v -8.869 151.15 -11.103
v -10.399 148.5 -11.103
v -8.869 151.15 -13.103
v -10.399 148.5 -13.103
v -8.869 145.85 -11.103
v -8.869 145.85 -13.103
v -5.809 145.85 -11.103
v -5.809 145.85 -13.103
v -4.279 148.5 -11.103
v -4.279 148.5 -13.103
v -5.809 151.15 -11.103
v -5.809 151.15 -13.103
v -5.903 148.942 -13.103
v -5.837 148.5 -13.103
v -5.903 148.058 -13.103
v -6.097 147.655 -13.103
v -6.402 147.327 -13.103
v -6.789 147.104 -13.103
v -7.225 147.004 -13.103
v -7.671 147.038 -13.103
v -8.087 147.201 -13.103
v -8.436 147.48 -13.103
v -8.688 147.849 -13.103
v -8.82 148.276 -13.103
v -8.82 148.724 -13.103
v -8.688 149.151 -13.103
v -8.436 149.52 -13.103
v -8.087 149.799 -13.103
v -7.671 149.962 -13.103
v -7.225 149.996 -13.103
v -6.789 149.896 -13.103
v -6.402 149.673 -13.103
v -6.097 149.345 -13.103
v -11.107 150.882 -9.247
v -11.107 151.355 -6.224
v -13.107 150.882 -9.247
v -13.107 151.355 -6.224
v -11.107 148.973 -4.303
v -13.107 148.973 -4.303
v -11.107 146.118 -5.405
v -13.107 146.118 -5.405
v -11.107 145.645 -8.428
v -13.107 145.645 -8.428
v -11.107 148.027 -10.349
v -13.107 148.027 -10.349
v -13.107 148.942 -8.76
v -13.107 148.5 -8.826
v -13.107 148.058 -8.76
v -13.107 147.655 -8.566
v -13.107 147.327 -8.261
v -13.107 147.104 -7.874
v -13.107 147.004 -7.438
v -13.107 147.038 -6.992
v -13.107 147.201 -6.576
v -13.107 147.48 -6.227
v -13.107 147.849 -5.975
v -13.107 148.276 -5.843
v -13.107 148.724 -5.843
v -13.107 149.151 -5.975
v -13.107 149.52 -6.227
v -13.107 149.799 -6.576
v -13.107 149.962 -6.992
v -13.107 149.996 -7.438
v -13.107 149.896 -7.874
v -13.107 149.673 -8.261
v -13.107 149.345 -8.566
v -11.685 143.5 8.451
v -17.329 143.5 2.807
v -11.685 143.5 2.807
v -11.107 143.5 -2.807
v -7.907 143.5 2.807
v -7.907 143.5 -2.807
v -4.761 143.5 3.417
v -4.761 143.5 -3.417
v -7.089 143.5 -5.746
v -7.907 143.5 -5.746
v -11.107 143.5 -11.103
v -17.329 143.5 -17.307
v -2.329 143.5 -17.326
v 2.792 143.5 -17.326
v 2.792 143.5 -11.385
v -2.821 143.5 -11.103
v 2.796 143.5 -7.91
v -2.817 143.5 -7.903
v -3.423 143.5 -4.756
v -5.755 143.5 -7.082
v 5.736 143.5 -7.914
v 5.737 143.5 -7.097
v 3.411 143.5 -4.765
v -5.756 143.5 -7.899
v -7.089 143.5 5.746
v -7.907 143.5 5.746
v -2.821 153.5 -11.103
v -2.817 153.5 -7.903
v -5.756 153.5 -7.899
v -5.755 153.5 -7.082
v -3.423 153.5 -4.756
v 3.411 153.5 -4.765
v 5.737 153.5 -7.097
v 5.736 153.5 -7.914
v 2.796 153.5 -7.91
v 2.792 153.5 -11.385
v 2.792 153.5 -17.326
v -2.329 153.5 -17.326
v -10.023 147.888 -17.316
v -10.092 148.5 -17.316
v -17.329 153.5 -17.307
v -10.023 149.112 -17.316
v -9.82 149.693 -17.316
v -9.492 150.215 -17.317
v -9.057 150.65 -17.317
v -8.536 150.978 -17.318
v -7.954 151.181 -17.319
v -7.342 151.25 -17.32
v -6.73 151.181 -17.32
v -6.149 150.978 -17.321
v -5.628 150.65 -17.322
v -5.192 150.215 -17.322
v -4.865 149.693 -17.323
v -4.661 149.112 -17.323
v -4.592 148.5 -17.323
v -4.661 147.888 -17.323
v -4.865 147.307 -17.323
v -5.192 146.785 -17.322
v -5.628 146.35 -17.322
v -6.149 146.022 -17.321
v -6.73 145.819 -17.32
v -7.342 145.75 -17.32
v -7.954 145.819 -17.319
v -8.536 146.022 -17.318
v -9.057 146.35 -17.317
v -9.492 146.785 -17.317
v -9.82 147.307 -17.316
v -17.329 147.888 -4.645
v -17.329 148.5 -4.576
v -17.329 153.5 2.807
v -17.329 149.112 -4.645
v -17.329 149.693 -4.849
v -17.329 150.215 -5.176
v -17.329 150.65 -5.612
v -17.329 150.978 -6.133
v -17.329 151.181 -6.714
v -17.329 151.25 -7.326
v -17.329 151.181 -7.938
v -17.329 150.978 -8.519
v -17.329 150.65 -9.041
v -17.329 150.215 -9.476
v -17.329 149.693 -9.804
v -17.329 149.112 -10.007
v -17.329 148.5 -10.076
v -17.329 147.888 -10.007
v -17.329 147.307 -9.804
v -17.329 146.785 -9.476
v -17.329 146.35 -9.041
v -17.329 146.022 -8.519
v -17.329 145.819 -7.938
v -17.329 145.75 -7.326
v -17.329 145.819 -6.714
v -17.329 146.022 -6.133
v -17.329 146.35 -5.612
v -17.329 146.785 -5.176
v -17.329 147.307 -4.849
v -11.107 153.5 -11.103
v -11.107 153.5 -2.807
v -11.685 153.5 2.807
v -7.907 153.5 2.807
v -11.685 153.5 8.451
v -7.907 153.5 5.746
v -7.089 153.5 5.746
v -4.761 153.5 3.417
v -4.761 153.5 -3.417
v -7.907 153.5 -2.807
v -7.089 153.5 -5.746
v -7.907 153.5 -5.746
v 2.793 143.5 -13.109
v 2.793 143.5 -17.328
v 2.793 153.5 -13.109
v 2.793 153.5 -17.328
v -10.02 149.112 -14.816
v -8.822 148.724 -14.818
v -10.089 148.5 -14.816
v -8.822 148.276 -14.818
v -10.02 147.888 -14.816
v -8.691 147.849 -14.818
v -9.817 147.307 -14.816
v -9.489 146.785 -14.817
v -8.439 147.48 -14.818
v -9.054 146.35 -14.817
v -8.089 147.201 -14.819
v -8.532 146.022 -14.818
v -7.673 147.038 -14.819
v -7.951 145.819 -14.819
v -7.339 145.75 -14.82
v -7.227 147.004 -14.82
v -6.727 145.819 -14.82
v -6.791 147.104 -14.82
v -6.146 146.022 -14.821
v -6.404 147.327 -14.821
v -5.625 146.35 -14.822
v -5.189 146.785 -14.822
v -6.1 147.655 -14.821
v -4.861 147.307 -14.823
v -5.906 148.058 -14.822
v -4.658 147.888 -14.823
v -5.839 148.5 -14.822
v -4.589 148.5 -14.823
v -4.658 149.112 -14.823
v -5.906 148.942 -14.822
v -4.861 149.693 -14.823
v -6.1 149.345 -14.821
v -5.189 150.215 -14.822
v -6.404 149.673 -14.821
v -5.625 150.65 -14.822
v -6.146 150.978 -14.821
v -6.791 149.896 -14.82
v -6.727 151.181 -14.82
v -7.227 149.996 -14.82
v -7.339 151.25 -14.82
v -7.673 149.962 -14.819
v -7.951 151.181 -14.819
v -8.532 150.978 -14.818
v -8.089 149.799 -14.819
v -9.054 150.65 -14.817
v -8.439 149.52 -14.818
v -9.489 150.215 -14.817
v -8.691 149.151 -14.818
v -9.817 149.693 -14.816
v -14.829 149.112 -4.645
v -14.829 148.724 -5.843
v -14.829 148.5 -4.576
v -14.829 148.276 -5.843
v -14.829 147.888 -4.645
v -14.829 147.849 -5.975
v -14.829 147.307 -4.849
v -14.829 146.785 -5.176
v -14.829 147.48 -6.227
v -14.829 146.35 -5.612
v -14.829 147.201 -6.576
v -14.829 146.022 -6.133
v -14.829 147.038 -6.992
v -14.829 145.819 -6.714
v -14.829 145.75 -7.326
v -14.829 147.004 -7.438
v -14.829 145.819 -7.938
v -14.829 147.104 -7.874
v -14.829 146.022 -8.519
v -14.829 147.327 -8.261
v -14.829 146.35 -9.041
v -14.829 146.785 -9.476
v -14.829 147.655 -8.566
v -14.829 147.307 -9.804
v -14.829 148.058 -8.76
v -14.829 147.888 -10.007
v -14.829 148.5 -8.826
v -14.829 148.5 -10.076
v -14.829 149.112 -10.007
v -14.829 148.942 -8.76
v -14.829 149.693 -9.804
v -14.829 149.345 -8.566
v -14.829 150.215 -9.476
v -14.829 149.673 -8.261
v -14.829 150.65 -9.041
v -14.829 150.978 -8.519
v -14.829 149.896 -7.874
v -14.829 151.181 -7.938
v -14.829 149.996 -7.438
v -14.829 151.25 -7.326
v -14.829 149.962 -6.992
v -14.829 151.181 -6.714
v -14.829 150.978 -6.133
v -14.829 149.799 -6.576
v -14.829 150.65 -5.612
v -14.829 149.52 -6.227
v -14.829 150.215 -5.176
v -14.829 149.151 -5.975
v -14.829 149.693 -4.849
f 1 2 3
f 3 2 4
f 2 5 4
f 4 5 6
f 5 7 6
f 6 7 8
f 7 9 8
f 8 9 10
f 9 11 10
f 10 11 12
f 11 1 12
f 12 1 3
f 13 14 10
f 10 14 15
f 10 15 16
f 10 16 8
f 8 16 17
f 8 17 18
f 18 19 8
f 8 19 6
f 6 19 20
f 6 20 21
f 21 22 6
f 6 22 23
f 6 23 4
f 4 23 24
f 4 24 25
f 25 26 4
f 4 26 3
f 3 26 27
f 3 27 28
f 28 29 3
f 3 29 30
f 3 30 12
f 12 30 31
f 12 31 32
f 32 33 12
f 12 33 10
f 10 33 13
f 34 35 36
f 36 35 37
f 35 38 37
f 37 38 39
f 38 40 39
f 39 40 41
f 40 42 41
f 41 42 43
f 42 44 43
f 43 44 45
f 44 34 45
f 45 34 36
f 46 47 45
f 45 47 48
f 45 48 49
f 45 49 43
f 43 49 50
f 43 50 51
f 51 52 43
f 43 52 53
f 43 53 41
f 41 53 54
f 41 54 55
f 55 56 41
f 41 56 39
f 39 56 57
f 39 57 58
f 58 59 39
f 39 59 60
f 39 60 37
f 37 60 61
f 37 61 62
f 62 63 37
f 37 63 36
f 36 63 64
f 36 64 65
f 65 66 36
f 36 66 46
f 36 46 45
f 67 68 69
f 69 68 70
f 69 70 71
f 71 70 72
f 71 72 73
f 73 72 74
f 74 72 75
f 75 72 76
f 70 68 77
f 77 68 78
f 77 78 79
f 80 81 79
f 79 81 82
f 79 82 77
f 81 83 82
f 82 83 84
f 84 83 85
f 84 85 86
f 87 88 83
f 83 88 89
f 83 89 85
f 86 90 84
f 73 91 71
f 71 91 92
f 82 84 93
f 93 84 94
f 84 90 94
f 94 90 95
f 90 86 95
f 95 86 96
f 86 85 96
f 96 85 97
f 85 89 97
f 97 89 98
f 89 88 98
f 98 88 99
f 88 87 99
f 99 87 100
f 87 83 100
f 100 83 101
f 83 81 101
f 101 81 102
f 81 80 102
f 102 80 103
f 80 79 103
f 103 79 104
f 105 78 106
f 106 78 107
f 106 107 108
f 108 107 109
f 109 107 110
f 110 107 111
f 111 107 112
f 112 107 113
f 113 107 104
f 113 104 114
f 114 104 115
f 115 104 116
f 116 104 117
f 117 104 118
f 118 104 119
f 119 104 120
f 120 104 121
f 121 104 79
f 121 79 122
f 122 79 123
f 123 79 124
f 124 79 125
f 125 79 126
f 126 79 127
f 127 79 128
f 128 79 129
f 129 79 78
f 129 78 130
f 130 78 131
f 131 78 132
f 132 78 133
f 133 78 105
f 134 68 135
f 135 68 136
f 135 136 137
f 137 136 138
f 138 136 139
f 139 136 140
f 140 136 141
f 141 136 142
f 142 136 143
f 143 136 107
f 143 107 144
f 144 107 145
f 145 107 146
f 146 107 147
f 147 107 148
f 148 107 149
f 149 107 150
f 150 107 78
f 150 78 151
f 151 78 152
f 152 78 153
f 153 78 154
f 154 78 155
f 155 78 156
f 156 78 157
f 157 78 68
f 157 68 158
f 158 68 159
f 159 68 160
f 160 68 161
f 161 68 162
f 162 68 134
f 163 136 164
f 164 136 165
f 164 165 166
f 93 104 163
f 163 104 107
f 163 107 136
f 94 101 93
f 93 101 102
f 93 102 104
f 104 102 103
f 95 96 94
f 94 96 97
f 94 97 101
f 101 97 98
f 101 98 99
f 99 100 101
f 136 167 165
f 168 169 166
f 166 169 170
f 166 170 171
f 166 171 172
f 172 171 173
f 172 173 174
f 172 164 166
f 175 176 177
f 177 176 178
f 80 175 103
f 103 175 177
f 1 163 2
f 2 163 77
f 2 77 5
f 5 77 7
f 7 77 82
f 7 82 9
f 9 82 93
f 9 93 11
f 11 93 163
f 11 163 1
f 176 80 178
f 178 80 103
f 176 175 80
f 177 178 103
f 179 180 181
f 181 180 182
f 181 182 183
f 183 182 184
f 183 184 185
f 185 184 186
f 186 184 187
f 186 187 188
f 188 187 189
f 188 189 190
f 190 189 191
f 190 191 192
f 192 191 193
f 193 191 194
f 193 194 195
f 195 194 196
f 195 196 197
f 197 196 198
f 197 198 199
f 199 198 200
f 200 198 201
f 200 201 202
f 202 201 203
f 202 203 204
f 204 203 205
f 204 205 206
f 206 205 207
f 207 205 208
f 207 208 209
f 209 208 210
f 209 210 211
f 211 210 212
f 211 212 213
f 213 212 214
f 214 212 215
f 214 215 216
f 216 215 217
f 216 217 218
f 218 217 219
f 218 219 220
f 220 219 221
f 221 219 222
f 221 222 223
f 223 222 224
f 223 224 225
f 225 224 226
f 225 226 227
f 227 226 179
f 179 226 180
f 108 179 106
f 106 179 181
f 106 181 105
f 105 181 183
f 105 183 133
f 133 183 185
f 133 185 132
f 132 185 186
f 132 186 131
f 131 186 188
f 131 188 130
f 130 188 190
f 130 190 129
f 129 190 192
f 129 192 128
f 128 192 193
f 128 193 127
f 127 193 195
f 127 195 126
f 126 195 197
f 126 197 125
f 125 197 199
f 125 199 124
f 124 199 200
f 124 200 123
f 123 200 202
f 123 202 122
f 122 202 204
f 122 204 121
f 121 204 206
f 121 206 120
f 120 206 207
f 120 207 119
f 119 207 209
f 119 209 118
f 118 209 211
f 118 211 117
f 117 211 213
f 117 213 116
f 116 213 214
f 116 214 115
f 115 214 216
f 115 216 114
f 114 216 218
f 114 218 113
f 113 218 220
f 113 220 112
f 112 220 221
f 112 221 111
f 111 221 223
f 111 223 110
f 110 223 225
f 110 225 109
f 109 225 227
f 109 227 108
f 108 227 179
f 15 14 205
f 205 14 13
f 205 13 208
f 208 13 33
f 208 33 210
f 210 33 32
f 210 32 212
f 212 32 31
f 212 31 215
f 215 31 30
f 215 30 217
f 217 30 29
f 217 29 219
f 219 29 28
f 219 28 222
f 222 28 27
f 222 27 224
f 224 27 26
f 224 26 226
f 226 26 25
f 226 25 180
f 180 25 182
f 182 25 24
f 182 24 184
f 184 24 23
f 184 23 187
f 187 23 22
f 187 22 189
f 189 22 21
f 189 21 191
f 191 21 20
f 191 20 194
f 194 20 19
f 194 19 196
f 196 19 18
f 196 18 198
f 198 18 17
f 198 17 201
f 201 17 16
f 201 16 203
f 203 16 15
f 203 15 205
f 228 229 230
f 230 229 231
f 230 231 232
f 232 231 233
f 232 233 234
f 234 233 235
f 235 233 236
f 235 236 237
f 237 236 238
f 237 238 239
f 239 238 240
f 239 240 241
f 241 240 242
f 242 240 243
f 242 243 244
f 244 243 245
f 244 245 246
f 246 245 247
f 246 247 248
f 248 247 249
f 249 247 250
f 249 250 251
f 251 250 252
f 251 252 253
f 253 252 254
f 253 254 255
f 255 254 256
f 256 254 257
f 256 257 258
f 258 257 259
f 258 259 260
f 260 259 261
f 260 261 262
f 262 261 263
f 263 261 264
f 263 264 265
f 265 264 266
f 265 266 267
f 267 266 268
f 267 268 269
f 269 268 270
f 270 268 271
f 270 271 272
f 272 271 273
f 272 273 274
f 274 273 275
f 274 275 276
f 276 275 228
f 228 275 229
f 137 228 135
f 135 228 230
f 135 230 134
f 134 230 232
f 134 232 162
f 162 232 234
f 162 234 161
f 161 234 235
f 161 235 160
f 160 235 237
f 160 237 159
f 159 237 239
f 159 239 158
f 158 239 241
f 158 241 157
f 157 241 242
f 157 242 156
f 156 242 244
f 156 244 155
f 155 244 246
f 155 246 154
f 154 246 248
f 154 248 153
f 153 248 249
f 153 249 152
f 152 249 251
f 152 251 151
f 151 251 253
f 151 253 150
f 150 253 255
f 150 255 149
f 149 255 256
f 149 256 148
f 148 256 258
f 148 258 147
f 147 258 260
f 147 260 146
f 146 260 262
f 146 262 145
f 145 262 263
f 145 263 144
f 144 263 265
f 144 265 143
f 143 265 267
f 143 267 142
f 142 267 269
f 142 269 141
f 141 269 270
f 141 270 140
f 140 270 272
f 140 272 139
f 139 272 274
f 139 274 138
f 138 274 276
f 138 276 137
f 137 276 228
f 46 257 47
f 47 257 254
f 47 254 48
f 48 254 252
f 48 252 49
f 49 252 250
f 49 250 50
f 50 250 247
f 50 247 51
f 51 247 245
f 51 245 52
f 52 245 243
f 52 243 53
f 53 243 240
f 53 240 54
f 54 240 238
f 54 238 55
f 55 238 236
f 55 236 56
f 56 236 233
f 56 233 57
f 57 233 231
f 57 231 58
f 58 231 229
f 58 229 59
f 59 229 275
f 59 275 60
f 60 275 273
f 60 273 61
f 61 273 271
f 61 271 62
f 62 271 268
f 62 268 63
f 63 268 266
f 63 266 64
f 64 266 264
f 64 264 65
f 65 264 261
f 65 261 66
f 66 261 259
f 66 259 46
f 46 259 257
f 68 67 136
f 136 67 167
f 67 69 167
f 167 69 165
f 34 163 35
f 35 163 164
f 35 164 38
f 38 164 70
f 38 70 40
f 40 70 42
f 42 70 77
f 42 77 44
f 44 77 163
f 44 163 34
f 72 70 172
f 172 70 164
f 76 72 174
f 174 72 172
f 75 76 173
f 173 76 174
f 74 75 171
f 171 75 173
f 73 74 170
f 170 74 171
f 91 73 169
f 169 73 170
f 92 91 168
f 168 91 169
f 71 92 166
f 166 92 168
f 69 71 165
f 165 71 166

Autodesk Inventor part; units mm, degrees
ref_plane "Work Plane1" through (0, 133.5, 0) normal (0, 1, 0) x (1, 0, 0)
sketch "Sketch2" plane through (0, 133.5, 0) normal (0, 1, 0) x (1, 0, 0)
  line L0 (-4.7607, 0) -> (-4.7607, 3.4172)
  line L1 (-4.7607, 3.4172) -> (-7.0894, 5.7459)
  line L2 (-7.0894, 5.7459) -> (-7.9066, 5.7459)
  line L3 (-7.9066, 5.7459) -> (-7.9066, 2.8066)
  line L4 (0, 0) -> (-13.0213, 0) construction
  line L5 (-7.4066, 2.3066) -> (-7.4066, 5.2459)
  line L6 (-7.4066, 5.2459) -> (-7.2965, 5.2459)
  line L7 (-7.2965, 5.2459) -> (-5.2607, 3.2101)
  line L8 (-5.2607, 3.2101) -> (-5.2607, 0.2101)
  line L9 (-3.7133, 3.0016) -> (-3.0065, 3.7094) projected
  line L10 (0, 0) -> (0, 8.149) construction
  line L11 (-11.6066, 2.3066) -> (-17.3293, 2.3066)
  line L12 (-17.3293, 2.3066) -> (-17.3293, 17.3066)
  line L13 (-4.5607, 3.5) -> (-4.5607, -3.5) projected
  line L14 (-7.0066, 5.9459) -> (-4.5607, 3.5) projected
  line L15 (-8.5066, 5.9459) -> (-7.0066, 5.9459) projected
  line L16 (-8.5066, 3.0066) -> (-8.5066, 5.9459) projected
  line L17 (-10.6066, 2.8066) -> (-10.6066, 10.5927)
  line L18 (-11.6066, 2.3066) -> (-11.6066, 0)
  line L19 (-7.9066, 2.8066) -> (-10.6066, 2.8066)
  line L20 (-10.0066, 3.0066) -> (-8.5066, 3.0066) projected
  line L21 (-7.4066, 2.3066) -> (-11.1066, 2.3066)
  line L22 (-11.1066, 0) -> (-11.1066, 2.3066)
  line L23 (-5.2607, 0.2101) -> (-5.2607, 0)
  line L24 (-10.0066, 8.5066) -> (-10.0066, 3.0066) projected
  line L25 (-10.6066, 2.8066) -> (-11.1066, 2.8066) construction
  line L26 (0, 0) -> (-18.7935, 18.7689) construction
  line L27 (-11.6066, 0) -> (-11.6066, 2.3066)
  line L28 (-11.6066, 2.8066) -> (-11.6066, 2.3066)
  line L29 (-11.6066, 2.8066) -> (-10.6066, 2.8066)
  line L30 (-5.2607, 0) -> (-5.2607, 3.2101)
  line L31 (-7.2965, 5.2459) -> (-7.4066, 5.2459)
  line L32 (-7.4066, 2.3066) -> (-7.4066, 5.2459)
  line L33 (-7.4066, 2.3066) -> (-11.1066, 2.3066)
  line L34 (-11.1066, 0) -> (-11.1066, 2.3066)
  line L35 (-12.1161, 0) -> (-4.7607, 0)
  line L36 (-4.7607, 0) -> (-4.7607, -3.4172)
  line L37 (-4.7607, -3.4172) -> (-7.0894, -5.7459)
  line L38 (-7.0894, -5.7459) -> (-7.9066, -5.7459)
  line L39 (-7.9066, -5.7459) -> (-7.9066, -2.8066)
  line L40 (-7.4066, -2.3066) -> (-7.4066, -5.2459)
  line L41 (-7.4066, -5.2459) -> (-7.2965, -5.2459)
  line L42 (-7.2965, -5.2459) -> (-5.2607, -3.2101)
  line L43 (-5.2607, -3.2101) -> (-5.2607, -0.2101)
  line L44 (-7.0066, -5.9459) -> (-4.5607, -3.5)
  line L45 (-8.5066, -5.9459) -> (-7.0066, -5.9459)
  line L46 (-8.5066, -3.0066) -> (-8.5066, -5.9459)
  line L47 (-11.6066, -2.3066) -> (-11.6066, 0)
  line L48 (-7.9066, -2.8066) -> (-10.6066, -2.8066)
  line L49 (-10.0066, -3.0066) -> (-8.5066, -3.0066)
  line L50 (-7.4066, -2.3066) -> (-11.1066, -2.3066)
  line L51 (-11.1066, 0) -> (-11.1066, -2.3066)
  line L52 (-5.2607, -0.2101) -> (-5.2607, 0)
  line L53 (-10.6066, -2.8066) -> (-11.1066, -2.8066) construction
  line L54 (-11.6066, 0) -> (-11.6066, -2.3066)
  line L55 (-11.6066, -2.8066) -> (-11.6066, -2.3066)
  line L56 (-11.6066, -2.8066) -> (-10.6066, -2.8066)
  line L57 (-5.2607, 0) -> (-5.2607, -3.2101)
  line L58 (-7.2965, -5.2459) -> (-7.4066, -5.2459)
  line L59 (-7.4066, -2.3066) -> (-7.4066, -5.2459)
  line L60 (-7.4066, -2.3066) -> (-11.1066, -2.3066)
  line L61 (-11.1066, 0) -> (-11.1066, -2.3066)
  line L62 (-0.0062, 4.7607) -> (-3.4234, 4.7562)
  line L63 (-3.4234, 4.7562) -> (-5.7552, 7.0819)
  line L64 (-5.7552, 7.0819) -> (-5.7563, 7.899)
  line L65 (-5.7563, 7.899) -> (-2.8169, 7.9029)
  line L66 (-2.3163, 7.4035) -> (-5.2556, 7.3997)
  line L67 (-5.2556, 7.3997) -> (-5.2555, 7.2896)
  line L68 (-5.2555, 7.2896) -> (-3.2169, 5.2564)
  line L69 (-3.2169, 5.2564) -> (-0.217, 5.2604)
  line L70 (-3.0065, 3.7094) -> (-3.7133, 3.0016)
  line L71 (-2.3218, 11.6035) -> (-2.3293, 17.3262)
  line L72 (-2.3293, 17.3262) -> (-17.3293, 17.3066)
  line L73 (-5.9551, 6.9988) -> (-3.506, 4.5561)
  line L74 (-5.9571, 8.4988) -> (-5.9551, 6.9988)
  line L75 (-3.0177, 8.5026) -> (-5.9571, 8.4988)
  line L76 (-2.8205, 10.6029) -> (-10.6066, 10.5927)
  line L77 (-2.3218, 11.6035) -> (-0.0152, 11.6065)
  line L78 (-2.8169, 7.9029) -> (-2.8205, 10.6029)
  line L79 (-3.0197, 10.0026) -> (-3.0177, 8.5026)
  line L80 (-2.3163, 7.4035) -> (-2.3211, 11.1035)
  line L81 (-0.0146, 11.1066) -> (-2.3211, 11.1035)
  line L82 (-0.217, 5.2604) -> (-0.0069, 5.2607)
  line L83 (-8.5197, 9.9954) -> (-3.0197, 10.0026)
  line L84 (-2.8205, 10.6029) -> (-2.8211, 11.1029) construction
  line L85 (-0.0152, 11.6065) -> (-2.3218, 11.6035)
  line L86 (-2.8218, 11.6029) -> (-2.3218, 11.6035)
  line L87 (-2.8218, 11.6029) -> (-2.8205, 10.6029)
  line L88 (-0.0069, 5.2607) -> (-3.2169, 5.2564)
  line L89 (-5.2555, 7.2896) -> (-5.2556, 7.3997)
  line L90 (-2.3163, 7.4035) -> (-5.2556, 7.3997)
  line L91 (-2.3163, 7.4035) -> (-2.3211, 11.1035)
  line L92 (-0.0146, 11.1066) -> (-2.3211, 11.1035)
  line L93 (-0.0159, 12.1161) -> (-0.0062, 4.7607)
  line L94 (0.2031, 5.2609) -> (-0.0069, 5.2607)
  line L95 (5.7366, 7.0969) -> (5.7355, 7.9141)
  line L96 (5.2362, 7.4134) -> (5.2363, 7.3034)
  line L97 (5.7355, 7.9141) -> (2.7962, 7.9102)
  line L98 (2.2968, 7.4096) -> (5.2362, 7.4134)
  line L99 (5.2363, 7.3034) -> (3.2031, 5.2649)
  line L100 (3.4109, 4.7651) -> (5.7366, 7.0969)
  line L101 (-0.0062, 4.7607) -> (3.4109, 4.7651)
  line L102 (2.9934, 10.0105) -> (2.9954, 8.5105)
  line L103 (2.7913, 11.6102) -> (2.7926, 10.6102)
  line L104 (2.7913, 11.6102) -> (2.2913, 11.6096)
  line L105 (2.7962, 7.9102) -> (2.7926, 10.6102)
  line L106 (2.2968, 7.4096) -> (5.2362, 7.4134)
  line L107 (2.2913, 11.6096) -> (-0.0152, 11.6065)
  line L108 (-0.0146, 11.1066) -> (2.292, 11.1096)
  line L109 (-0.0146, 11.1066) -> (2.292, 11.1096)
  line L110 (3.2031, 5.2649) -> (0.2031, 5.2609)
  line L111 (0.2031, 5.2609) -> (-0.0069, 5.2607)
  line L112 (-0.0069, 5.2607) -> (3.2031, 5.2649)
  line L113 (-0.0152, 11.6065) -> (2.2913, 11.6096)
  line L114 (5.2363, 7.3034) -> (5.2362, 7.4134)
  line L115 (5.9367, 7.0144) -> (3.494, 4.5652)
  line L116 (2.2968, 7.4096) -> (2.292, 11.1096)
  line L117 (2.2968, 7.4096) -> (2.292, 11.1096)
  line L118 (2.7926, 10.6102) -> (2.792, 11.1102) construction
  line L119 (-0.217, 5.2604) -> (-0.0069, 5.2607)
  line L120 (-2.8218, 11.6029) -> (-2.8286, 16.8256)
  line L121 (-2.8286, 16.8256) -> (-16.8293, 16.8072)
  line L122 (-16.8293, 16.8072) -> (-16.8293, 2.8066)
  line L123 (-16.8293, 2.8066) -> (-11.6066, 2.8066)
  point P0 (-9.2566, 2.3066)
  point P1 (-9.2566, 2.8066)
  point P2 (-9.2566, -2.3066)
  point P3 (-9.2566, -2.8066)
  point P4 (-0.0171, 13.0213)
  point P5 (-2.3187, 9.2535)
  point P6 (-2.8187, 9.2529)
  point P7 (-0.0214, 8.1489)
  point P8 (2.7944, 9.2602)
  point P9 (2.2944, 9.2596)
  point P10 (-5.2607, -0.2101)
  dimension "d73" = 3
  dimension "d74" = 0.2
  dimension "d75" = 0.5
  dimension "d76" = 0.2
  dimension "d77" = 0.2
  dimension "d78" = 0.6
  dimension "d79" = 0.2
  dimension "d80" = 0.5
  dimension "d81" = 0.5
  dimension "d82" = 15
  dimension "d83" = 0.6
  dimension "d84" = 0.5
  dimension "d86" = 0.5
extrude "Extrusion2" add sketch "Sketch2" along normal blind 30 contours L35 L23 L8 L7 L6 L5 L21 L22 L18 L28 L29 L19 L3 L2 L1 L0 | L36 L37 L38 L39 L48 L56 L55 L47 L35 L51 L50 L40 L41 L42 L43 L52 | L11 L12 L72 L71 L86 L120 L121 L122 L123 L28 | L87 L86 L77 L93 L81 L80 L66 L67 L68 L69 L82 L62 L63 L64 L65 L78 | L107 L104 L103 L105 L97 L95 L100 L101 L93 L94 L110 L99 L96 L98 L116 L108
sketch "Sketch8" plane through (0, 163.5, 0) normal (0, 1, 0) x (1, 0, 0)
  line L0 (2.7962, 7.9102) -> (2.7913, 11.6102) projected
  line L1 (-11.6066, 2.3066) -> (-11.6066, -2.8066) projected
  line L2 (-17.3293, 17.3066) -> (-17.3293, 2.3066) projected
  line L3 (-11.6066, -2.8066) -> (-17.3293, -2.8066)
  line L4 (-17.3293, -2.8066) -> (-17.3293, 2.3066)
  line L5 (-17.3293, 2.3066) -> (-11.6066, 2.3066)
  line L6 (-11.6066, 2.3066) -> (-11.6066, -2.8066)
  line L7 (-2.3293, 17.3262) -> (2.7916, 17.3262)
  line L8 (2.7916, 17.3262) -> (2.7916, 11.3851)
  line L9 (2.7916, 11.3851) -> (-2.3293, 11.3851)
  line L10 (-2.3293, 11.3851) -> (-2.3293, 17.3262)
  point P0 (0, 0)
extrude "Extrusion5" add sketch "Sketch8" against normal blind 30
sketch "Sketch10" plane through (0, 163.5, 0) normal (0, 1, 0) x (1, 0, 0)
  point P0 (0, 0)
sketch "Sketch11" plane through (0, 163.5, 0) normal (0, 1, 0) x (1, 0, 0)
  line L0 (-2.3211, 11.1035) -> (2.292, 11.1096) projected
  line L1 (-17.118, 17.0457) -> (-2.3422, 17.0457)
  line L2 (-2.3422, 17.0457) -> (-2.3422, 11.1035)
  line L3 (-2.3422, 11.1035) -> (-17.118, 11.1035)
  line L4 (-17.118, 11.1035) -> (-17.118, 17.0457)
  line L5 (-11.1066, 2.3066) -> (-7.4066, 2.3066) projected
  line L6 (-17.118, 17.0457) -> (-11.1066, 17.0457)
  line L7 (-11.1066, 17.0457) -> (-11.1066, 2.3066)
  line L8 (-11.1066, 2.3066) -> (-17.118, 2.3066)
  line L9 (-17.118, 2.3066) -> (-17.118, 17.0457)
  line L10 (-7.9066, -2.8066) -> (-17.3293, -2.8066) projected
  line L11 (-11.6847, -2.8066) -> (-11.6847, -8.4511)
  line L12 (-11.6847, -2.8066) -> (-6.0401, -2.8066) construction
  line L13 (-11.6847, -8.4511) -> (-17.3293, -2.8066)
  line L14 (2.7962, 7.9102) -> (2.7916, 11.3851) projected
  line L15 (2.7918, 11.2643) -> (8.8539, 11.2643)
  line L16 (2.7916, 17.3262) -> (-2.3293, 17.3262) projected
  line L17 (2.7916, 17.3262) -> (8.8539, 11.2643)
  line L18 (2.7947, 9.0187) -> (2.7916, 17.3262)
  point P0 (0, 0)
  point P1 (-11.1066, 11.1035)
  point P2 (2.7939, 11.2643)
  point P3 (2.7913, 11.6102)
  dimension "d147" = 45
  dimension "d149" = 44.999
extrude "Extrusion6" add sketch "Sketch11" against normal up to surface (30 mm away) contours L1 L7 L3 L4 | L1 L2 L3 L7 | L3 L7 L8 L9
extrude "Extrusion7" add sketch "Sketch11" against normal blind 30 contours L11 L13 L10 | L18 L17 L15
extrude "Extrusion8" add sketch "Sketch2" along normal up to surface (30 mm away) contours L35 L22 L21 L5 L6 L7 L8 L23 | L52 L43 L42 L41 L40 L50 L51 L35 | L93 L82 L69 L68 L67 L66 L80 L81 | L108 L116 L98 L96 L99 L110 L94 L93
sketch "Sketch6" plane through (-11.6066, 133.5, -2.3066) normal (-1, 0, 0) x (0, 0, 1)
  line L0 (-15, 30) -> (0, 30) projected
  line L1 (0, 30) -> (5.1131, 30) projected
  line L2 (0, 30) -> (5.1131, 30)
  line L3 (2.5566, 30) -> (2.5566, 0)
  line L4 (0, 0) -> (5.1131, 0) projected
  circle A0 centre (2.5566, 15) radius 2.5
  dimension "d121" = 5
sketch "Sketch7" plane through (-2.3218, 133.5, -11.6035) normal (-0.0013, 0, -1) x (-1, 0, 0.0013)
  line L0 (-5.1131, 0) -> (-5.1131, 30) projected
  line L1 (0, 30) -> (15, 30) projected
  line L2 (-5.1131, 30) -> (0, 30)
  line L3 (-2.5566, 30) -> (-2.5566, 0)
  line L4 (0, 0) -> (-4.6131, 0) projected
  circle A0 centre (-2.5566, 15) radius 2.5
  dimension "d122" = 5
ref_plane "Work Plane2" through (0, 148.5, 0) normal (0, 1, 0) x (1, 0, 0)
sketch "Sketch13" plane through (0, 148.5, 0) normal (0, 1, 0) x (1, 0, 0)
  line L0 (14.8441, 67.8647) -> (-12.7331, 95.4419) construction
  line L1 (-12.7331, 95.4419) -> (-32.8856, 75.2893) construction
  line L2 (-32.8856, 75.2893) -> (-5.3085, 47.7122) construction
  line L3 (-5.3085, 47.7122) -> (14.8441, 67.8647) construction
  line L4 (-2.3293, 17.3262) -> (-17.3293, 17.3066) projected
  line L5 (0, 0) -> (-17.3293, 17.3066) construction
  line L6 (-17.3293, 17.3066) -> (-17.3293, 17.3066) construction
  line L7 (-39.3305, 39.3078) -> (-18.1173, 60.521) construction
  line L8 (-17.3293, 17.3066) -> (-17.3293, -2.8066) projected
  line L9 (-17.3293, 17.3066) -> (-42.078, 42.0553) construction
  line L10 (-42.078, 42.0553) -> (-20.8648, 63.2685) construction
  line L11 (20.1474, 71.7538) -> (-3.8943, 47.7122)
  line L12 (-49.1491, 77.4106) -> (-6.7227, 34.9842) construction
  line L13 (-6.7227, 34.9842) -> (-35.0069, 6.7) construction
  line L14 (-35.0069, 6.7) -> (-77.4334, 49.1264) construction
  line L15 (-77.4334, 49.1264) -> (-49.1491, 77.4106) construction
  line L16 (-49.1491, 77.4106) -> (-35.0069, 6.7) construction
  line L17 (-6.7227, 34.9842) -> (-77.4334, 49.1264) construction
  line L18 (-84.5025, 56.1955) -> (-27.9339, -0.3731) construction
  line L19 (-27.9339, -0.3731) -> (-35.005, -7.4441) construction
  line L20 (-35.005, -7.4441) -> (-91.5735, 49.1244) construction
  line L21 (-91.5735, 49.1244) -> (-84.5025, 56.1955) construction
  line L22 (-84.5025, 56.1955) -> (-35.005, -7.4441) construction
  line L23 (-27.9339, -0.3731) -> (-91.5735, 49.1244) construction
  line L24 (-56.2182, 84.4797) -> (0.3504, 27.9112) construction
  line L25 (0.3504, 27.9112) -> (7.4214, 34.9823) construction
  line L26 (7.4214, 34.9823) -> (-49.1471, 91.5508) construction
  line L27 (34.4866, -31.2721) -> (31.3132, -31.2721) construction
  line L28 (-30.5205, 27.2872) -> (-27.9594, 27.2872) construction
  line L29 (-29.24, 26.4576) -> (-29.24, 28.1733) construction
  line L30 (-32.8856, 75.2893) -> (-35.005, 77.4087) construction
  line L31 (-3.8943, 47.7122) -> (25.244, 47.7122) construction
  line L32 (-3.0114, 46.8293) -> (-3.7185, 46.1222) construction
  line L33 (-3.8943, 47.7122) -> (-33.9077, 77.7257) construction
  line L34 (-3.8943, 47.7122) -> (38.5512, 47.7122) construction
  line L35 (-2.3293, 17.3262) -> (2.7916, 17.3262) projected
  line L36 (2.7916, 17.3262) -> (14.6413, 29.1766)
  line L37 (2.7916, 17.3262) -> (8.8539, 11.2643) projected
  line L38 (8.8539, 11.2643) -> (26.7661, 29.1766)
  line L39 (8.8539, 11.2643) -> (34.1856, 11.2643) construction
  line L40 (26.7661, 29.1766) -> (14.6413, 29.1766) construction
  line L41 (26.7661, 29.1766) -> (9.2392, 46.7035)
  line L42 (26.7661, 29.1766) -> (66.5529, 29.1766) construction
  line L43 (9.2392, 46.7035) -> (34.2895, 71.7538)
  line L44 (9.2392, 46.7035) -> (44.6657, 46.7035) construction
  line L45 (10.4159, 62.0223) -> (17.487, 54.9513) construction
  line L46 (10.4159, 62.0223) -> (20.4159, 62.0223) construction
  line L47 (8.8539, 11.2643) -> (2.7916, 17.3262)
  line L48 (-27.1184, 82.4708) -> (-4.1184, 82.4708) construction
  line L49 (15.4451, 17.8556) -> (9.3827, 23.9177) construction
  line L50 (20.1474, 71.7538) -> (3.8839, 88.0172)
  line L51 (20.1474, 71.7538) -> (43.1474, 71.7538) construction
  line L52 (34.2895, 71.7538) -> (10.955, 95.0883)
  line L53 (34.2895, 71.7538) -> (67.2895, 71.7538) construction
  line L54 (10.955, 95.0883) -> (3.8839, 88.0172) construction
  line L55 (-20.8648, 63.2685) -> (3.8839, 88.0172) construction
  line L56 (-12.3795, 104.2807) -> (-36.4212, 80.2391)
  line L57 (-37.4298, 93.3725) -> (-12.3795, 118.4228)
  line L58 (-12.3795, 104.2807) -> (3.8839, 88.0172)
  line L59 (-12.3795, 118.4228) -> (10.955, 95.0883)
  line L60 (-37.4298, 93.3725) -> (-43.4922, 87.3101)
  line L61 (-37.4298, 93.3725) -> (-28.8563, 93.3725) construction
  line L62 (-43.4922, 87.3101) -> (-36.4212, 80.2391)
  line L63 (-7.3926, 51.2105) -> (-8.0997, 50.5034) construction
  line L64 (9.4143, 82.4868) -> (16.4854, 89.5579) construction
  line L65 (-27.8481, 88.8121) -> (-34.9192, 95.8832) construction
  line L66 (-3.8943, 47.7122) -> (14.6413, 29.1766)
  point P0 (-29.3501, 73.168)
  point P1 (-59.7537, 24.3757)
  point P2 (-0.0052, 84.1282)
  dimension "d147" = 45
  dimension "d203" = 45
  dimension "d204" = 4
  dimension "d127" = 28.5
  dimension "d129" = 30
  dimension "d131" = 35
  dimension "d132" = 17
  dimension "d134" = 60
  dimension "d136" = 40
  dimension "d137" = 80
  dimension "d138" = 10
  dimension "d139" = 135
  dimension "d140" = 1
  dimension "d144" = 1
  dimension "d145" = 135
  dimension "d150" = 45
  dimension "d151" = 45
  dimension "d152" = 135
  dimension "d153" = 45
  dimension "d157" = 45
  dimension "d158" = 10
  dimension "d164" = 23
  dimension "d165" = 135
  dimension "d166" = 135
  dimension "d167" = 90
  dimension "d169" = 90
  dimension "d170" = 135
  dimension "d192" = 1
  dimension "d193" = 10
  dimension "d194" = 10
  dimension "d195" = 34
  dimension "d196" = 90
extrude "Extrusion11" add sketch "Sketch13" along normal mid plane 10
ref_plane "Work Plane4" through (0, 148.5, 0) normal (0, 1, 0) x (1, 0, 0)
sketch "Sketch16" plane through (0, 148.5, 0) normal (0, 1, 0) x (1, 0, 0)
  line L0 (20.1474, 71.7538) -> (-3.8943, 47.7122) projected
  line L1 (-3.8943, 47.7122) -> (20.1474, 71.7538)
  line L2 (20.1474, 71.7538) -> (-12.3795, 104.2807)
  line L3 (-12.3795, 104.2807) -> (-36.4212, 80.2391)
  line L4 (-35.658, 86.6591) -> (-12.3795, 109.9375)
  line L5 (-12.3795, 109.9375) -> (25.8042, 71.7538)
  line L6 (25.8042, 71.7538) -> (-1.0658, 44.8837)
  line L7 (-36.4212, 80.2391) -> (-12.3795, 104.2807)
  line L8 (-15.208, 107.1091) -> (-39.2496, 83.0675)
  line L9 (-39.2496, 83.0675) -> (-36.4212, 80.2391)
  line L10 (-1.0658, 44.8837) -> (-3.8943, 47.7122)
  line L11 (-3.8943, 47.7122) -> (14.6413, 29.1766) projected
  line L12 (-43.4922, 87.3101) -> (-36.4212, 80.2391) projected
  point P0 (0, 0)
  point P1 (12.3692, 58.3188)
  dimension "d180" = 4
  dimension "d181" = 4
  dimension "d182" = 46
  dimension "d183" = 4
extrude "Extrusion12" add sketch "Sketch16" against normal blind 19.25
extrude "Extrusion14" add sketch "Sketch16" along normal blind 14.25
sketch "Sketch18" plane through (0, 129.25, 0) normal (0, -1, 0) x (1, 0, 0)
  line L0 (-3.8943, -47.7122) -> (20.1474, -71.7538) projected
  line L1 (20.1474, -71.7538) -> (-3.8943, -47.7122)
  line L2 (-3.8943, -47.7122) -> (-36.4212, -80.2391)
  line L3 (-36.4212, -80.2391) -> (-12.3795, -104.2807)
  line L4 (-12.3795, -104.2807) -> (20.1474, -71.7538)
  point P0 (0, 0)
extrude "Extrusion15" add sketch "Sketch18" against normal blind 5
ref_plane "Work Plane5" through (-231821.5246, 143.5, 231819.1141) normal (0.7071, 0, 0.7071) x (0, 1, 0)
sketch "Sketch19" plane through (-231821.5246, 143.5, 231819.1141) normal (0.7071, 0, 0.7071) x (0, 1, 0)
  line L0 (20, -327857.6653) -> (10, -327857.6653) projected
  line L1 (17.5, -327857.6653) -> (10, -327865.1653)
  line L2 (10, -327874.4237) -> (10, -327857.6653) projected
  line L3 (17.5, -327857.6653) -> (28.1066, -327857.6653) construction
  line L4 (17.5, -327857.6653) -> (10, -327857.6653)
  line L5 (10, -327865.1653) -> (10, -327857.6653)
  dimension "d197" = 135
  dimension "d198" = 2.5
extrude "Extrusion16" add sketch "Sketch19" along normal mid plane 4
mirror "Mirror2" about plane through (0, 148.5, 0) normal (0, 1, 0) of "Extrusion16"
sketch "Sketch20" plane through (0, 148.5, 0) normal (0, 1, 0) x (1, 0, 0)
  line L0 (0, 0) -> (-56.5685, 56.5685) construction
  line L1 (0, 0) -> (80, 0) construction
  dimension "d201" = 80
  dimension "d202" = 135
sketch "Sketch21" plane through (0, 148.5, 0) normal (0, 1, 0) x (1, 0, 0)
  point P0 (0, 0)
sketch "Sketch22" plane through (0, 148.5, 0) normal (0, 1, 0) x (1, 0, 0)
  line L0 (23.9377, 32.005) -> (23.9377, 61.4019)
  line L1 (34.2895, 71.7538) -> (9.2392, 46.7035) projected
  line L2 (9.2392, 46.7035) -> (26.7661, 29.1766) projected
  line L3 (-1.0658, 44.8837) -> (14.6413, 29.1766) projected
  line L4 (7.6413, 36.1766) -> (7.6413, 22.1762)
  line L5 (14.6413, 29.1766) -> (2.7916, 17.3262) projected
  point P0 (0, 0)
  dimension "d203" = 45
  dimension "d204" = 4
  dimension "d207" = 45
  dimension "d208" = 7
extrude "Extrusion17" add sketch "Sketch22" along normal mid plane 4
sketch "Sketch23" plane through (0, 162.75, 0) normal (0, 1, 0) x (1, 0, 0)
  point P0 (0, 0)
sketch "Sketch25" plane through (0, 162.75, 0) normal (0, 1, 0) x (1, 0, 0)
  point P0 (0, 0)
sketch "Sketch26" plane through (0, 162.75, 0) normal (0, 1, 0) x (1, 0, 0)
  line L0 (-12.3795, 104.2807) -> (20.1474, 71.7538) projected
  line L1 (20.1474, 71.7538) -> (-12.3795, 104.2807)
  line L2 (-12.3795, 104.2807) -> (-36.4212, 80.2391)
  line L3 (-36.4212, 80.2391) -> (-3.8943, 47.7122)
  line L4 (-3.8943, 47.7122) -> (20.1474, 71.7538)
  line L5 (-37.1283, 80.2391) -> (-12.3795, 104.9878)
  line L6 (-12.3795, 104.9878) -> (20.8545, 71.7538)
  line L7 (20.8545, 71.7538) -> (-3.8943, 47.005)
  line L8 (-3.8943, 47.005) -> (-37.1283, 80.2391)
  point P0 (0, 0)
  dimension "d210" = 0.5
extrude "Extrusion18" cut sketch "Sketch26" against normal up to surface (28.5 mm away) contours L0 L4 L3 L2 | L5 L6 L7 L8
sketch "Sketch27" plane through (-17.3293, 133.5, -17.3066) normal (-1, 0, 0) x (0, 0, 1)
  line L0 (-0.0197, 20) -> (-0.0197, 10) projected
  line L1 (-0.0197, 15) -> (9.9803, 15) construction
  circle A0 centre (9.9803, 15) radius 1.5
  point P0 (17.3066, -133.5)
  dimension "d213" = 10
  dimension "d214" = 3
hole "Hole3" at (-17.3293, 148.5, -7.3262) direction (1, 0, 0) diameter 3 depth 8 tip angle 118 counterbore diameter 5.5 counterbore depth 2.5
sketch "Sketch28" plane through (-17.3293, 133.5, -17.3066) normal (-0.0013, 0, -1) x (-1, 0, 0.0013)
  ellipse E0 centre (0.0131, 15) end of major axis (0.0131, 12.25) minor radius 0.0036 projected
  line L0 (0.0131, 15) -> (-9.9869, 15) construction
  line L1 (0.0264, 30) -> (0.0264, 0) projected
  line L2 (0.0131, 15) -> (0.0264, 30) construction
  circle A0 centre (-9.9869, 15) radius 1.25
  point P0 (-17.3066, -133.5)
  dimension "d222" = 10
  dimension "d223" = 2.5
hole "Hole4" at (-7.3424, 148.5, -17.3197) direction (0.0013, 0, 1) diameter 3 depth 8 tip angle 118 counterbore diameter 5.5 counterbore depth 2.5
sketch "Sketch29" plane through (0, 163.5, 0) normal (0, 1, 0) x (1, 0, 0)
  line L0 (-17.3293, 17.3066) -> (-17.3293, -2.8066) projected
  line L1 (-17.3293, 17.3066) -> (46.0524, 17.3262)
  line L2 (46.0524, 17.3262) -> (46.0222, 114.3129)
  line L3 (46.0222, 114.3129) -> (-17.3594, 114.2932)
  line L4 (-17.3594, 114.2932) -> (-17.3293, 17.3066)
  line L5 (-110.0198, 149.1927) -> (107.7957, 149.2603)
  line L6 (107.7957, 149.2603) -> (107.8339, 26.2715)
  line L7 (107.8339, 26.2715) -> (-109.9816, 26.2039)
  line L8 (-109.9816, 26.2039) -> (-110.0198, 149.1927)
  line L9 (2.7916, 11.3851) -> (2.7916, 17.3262) projected
  line L10 (2.7916, 17.3262) -> (18.2078, 17.3176)
  line L11 (18.2078, 17.3176) -> (18.2026, 7.9013)
  line L12 (18.2026, 7.9013) -> (2.7863, 7.91)
  line L13 (2.7863, 7.91) -> (2.7916, 17.3262)
  point P0 (0, 0)
extrude "Extrusion19" cut sketch "Sketch29" against normal blind 800 contours L7 L4 L3 L2 | L2 L3 L4 L7 L8 L5 L6
sketch "Sketch30" plane through (0, 163.5, 0) normal (0, 1, 0) x (1, 0, 0)
  line L0 (2.7962, 7.9102) -> (2.7916, 11.3851) projected
  line L1 (2.7932, 10.184) -> (29.194, 10.184)
  line L2 (29.194, 10.184) -> (29.194, 30.9791)
  line L3 (29.194, 30.9791) -> (2.7932, 30.9791)
  line L4 (2.7932, 30.9791) -> (2.7932, 10.184)
  point P0 (0, 0)
extrude "Extrusion20" cut sketch "Sketch30" against normal blind 800
sketch "Sketch31" plane through (0, 163.5, 0) normal (0, 1, 0) x (1, 0, 0)
  line L0 (-21.2517, 19.0362) -> (12.6228, 19.0362)
  line L1 (12.6228, 19.0362) -> (12.6228, -13.439)
  line L2 (12.6228, -13.439) -> (-21.2517, -13.439)
  line L3 (-21.2517, -13.439) -> (-21.2517, 19.0362)
  point P0 (0, 0)
extrude "Extrusion21" cut sketch "Sketch31" against normal blind 10
sketch "Sketch32" plane through (0, 133.5, 0) normal (0, -1, 0) x (1, 0, 0)
  line L0 (-28.7146, 16.4708) -> (13.0892, 16.4708)
  line L1 (13.0892, 16.4708) -> (13.0892, -20.5521)
  line L2 (13.0892, -20.5521) -> (-28.7146, -20.5521)
  line L3 (-28.7146, -20.5521) -> (-28.7146, 16.4708)
  point P0 (0, 0)
extrude "Extrusion22" cut sketch "Sketch32" against normal blind 10
sketch "Sketch33" plane through (-11.1066, 153.5, -2.8066) normal (1, 0, 0) x (0, 0, -1)
  circle A0 centre (4.5197, -5) radius 1.5 projected
  line L0 (5.6218, -7.8546) -> (2.5986, -7.3817)
  line L1 (2.5986, -7.3817) -> (1.4965, -4.5271)
  line L2 (1.4965, -4.5271) -> (3.4176, -2.1454)
  line L3 (3.4176, -2.1454) -> (6.4408, -2.6183)
  line L4 (6.4408, -2.6183) -> (7.5429, -5.4729)
  line L5 (7.5429, -5.4729) -> (5.6218, -7.8546)
  point P0 (-2.8066, -153.5)
  dimension "d247" = 5.3
extrude "Extrusion23" cut sketch "Sketch33" against normal blind 2 contours A0 | L0 L1 L2 L3 L4 L5
sketch "Sketch34" plane through (-11.1066, 153.5, -11.1035) normal (0, 0, 1) x (1, 0, 0)
  ellipse E0 centre (3.7675, -5) end of major axis (3.7675, -3.5) minor radius 1.5 projected
  line L0 (6.8274, -5) -> (5.2974, -7.65)
  line L1 (5.2974, -7.65) -> (2.2375, -7.65)
  line L2 (2.2375, -7.65) -> (0.7075, -5)
  line L3 (0.7075, -5) -> (2.2375, -2.35)
  line L4 (2.2375, -2.35) -> (5.2974, -2.35)
  line L5 (5.2974, -2.35) -> (6.8274, -5)
  point P0 (11.1066, -153.5)
  dimension "d245" = 5.3
extrude "Extrusion24" cut sketch "Sketch34" against normal blind 2 contours E0 | L0 L1 L2 L3 L4 L5
equation "\"hole_diam\" = 5"
properties part number "motor_mount_fittest" material "ABS Plastic"
